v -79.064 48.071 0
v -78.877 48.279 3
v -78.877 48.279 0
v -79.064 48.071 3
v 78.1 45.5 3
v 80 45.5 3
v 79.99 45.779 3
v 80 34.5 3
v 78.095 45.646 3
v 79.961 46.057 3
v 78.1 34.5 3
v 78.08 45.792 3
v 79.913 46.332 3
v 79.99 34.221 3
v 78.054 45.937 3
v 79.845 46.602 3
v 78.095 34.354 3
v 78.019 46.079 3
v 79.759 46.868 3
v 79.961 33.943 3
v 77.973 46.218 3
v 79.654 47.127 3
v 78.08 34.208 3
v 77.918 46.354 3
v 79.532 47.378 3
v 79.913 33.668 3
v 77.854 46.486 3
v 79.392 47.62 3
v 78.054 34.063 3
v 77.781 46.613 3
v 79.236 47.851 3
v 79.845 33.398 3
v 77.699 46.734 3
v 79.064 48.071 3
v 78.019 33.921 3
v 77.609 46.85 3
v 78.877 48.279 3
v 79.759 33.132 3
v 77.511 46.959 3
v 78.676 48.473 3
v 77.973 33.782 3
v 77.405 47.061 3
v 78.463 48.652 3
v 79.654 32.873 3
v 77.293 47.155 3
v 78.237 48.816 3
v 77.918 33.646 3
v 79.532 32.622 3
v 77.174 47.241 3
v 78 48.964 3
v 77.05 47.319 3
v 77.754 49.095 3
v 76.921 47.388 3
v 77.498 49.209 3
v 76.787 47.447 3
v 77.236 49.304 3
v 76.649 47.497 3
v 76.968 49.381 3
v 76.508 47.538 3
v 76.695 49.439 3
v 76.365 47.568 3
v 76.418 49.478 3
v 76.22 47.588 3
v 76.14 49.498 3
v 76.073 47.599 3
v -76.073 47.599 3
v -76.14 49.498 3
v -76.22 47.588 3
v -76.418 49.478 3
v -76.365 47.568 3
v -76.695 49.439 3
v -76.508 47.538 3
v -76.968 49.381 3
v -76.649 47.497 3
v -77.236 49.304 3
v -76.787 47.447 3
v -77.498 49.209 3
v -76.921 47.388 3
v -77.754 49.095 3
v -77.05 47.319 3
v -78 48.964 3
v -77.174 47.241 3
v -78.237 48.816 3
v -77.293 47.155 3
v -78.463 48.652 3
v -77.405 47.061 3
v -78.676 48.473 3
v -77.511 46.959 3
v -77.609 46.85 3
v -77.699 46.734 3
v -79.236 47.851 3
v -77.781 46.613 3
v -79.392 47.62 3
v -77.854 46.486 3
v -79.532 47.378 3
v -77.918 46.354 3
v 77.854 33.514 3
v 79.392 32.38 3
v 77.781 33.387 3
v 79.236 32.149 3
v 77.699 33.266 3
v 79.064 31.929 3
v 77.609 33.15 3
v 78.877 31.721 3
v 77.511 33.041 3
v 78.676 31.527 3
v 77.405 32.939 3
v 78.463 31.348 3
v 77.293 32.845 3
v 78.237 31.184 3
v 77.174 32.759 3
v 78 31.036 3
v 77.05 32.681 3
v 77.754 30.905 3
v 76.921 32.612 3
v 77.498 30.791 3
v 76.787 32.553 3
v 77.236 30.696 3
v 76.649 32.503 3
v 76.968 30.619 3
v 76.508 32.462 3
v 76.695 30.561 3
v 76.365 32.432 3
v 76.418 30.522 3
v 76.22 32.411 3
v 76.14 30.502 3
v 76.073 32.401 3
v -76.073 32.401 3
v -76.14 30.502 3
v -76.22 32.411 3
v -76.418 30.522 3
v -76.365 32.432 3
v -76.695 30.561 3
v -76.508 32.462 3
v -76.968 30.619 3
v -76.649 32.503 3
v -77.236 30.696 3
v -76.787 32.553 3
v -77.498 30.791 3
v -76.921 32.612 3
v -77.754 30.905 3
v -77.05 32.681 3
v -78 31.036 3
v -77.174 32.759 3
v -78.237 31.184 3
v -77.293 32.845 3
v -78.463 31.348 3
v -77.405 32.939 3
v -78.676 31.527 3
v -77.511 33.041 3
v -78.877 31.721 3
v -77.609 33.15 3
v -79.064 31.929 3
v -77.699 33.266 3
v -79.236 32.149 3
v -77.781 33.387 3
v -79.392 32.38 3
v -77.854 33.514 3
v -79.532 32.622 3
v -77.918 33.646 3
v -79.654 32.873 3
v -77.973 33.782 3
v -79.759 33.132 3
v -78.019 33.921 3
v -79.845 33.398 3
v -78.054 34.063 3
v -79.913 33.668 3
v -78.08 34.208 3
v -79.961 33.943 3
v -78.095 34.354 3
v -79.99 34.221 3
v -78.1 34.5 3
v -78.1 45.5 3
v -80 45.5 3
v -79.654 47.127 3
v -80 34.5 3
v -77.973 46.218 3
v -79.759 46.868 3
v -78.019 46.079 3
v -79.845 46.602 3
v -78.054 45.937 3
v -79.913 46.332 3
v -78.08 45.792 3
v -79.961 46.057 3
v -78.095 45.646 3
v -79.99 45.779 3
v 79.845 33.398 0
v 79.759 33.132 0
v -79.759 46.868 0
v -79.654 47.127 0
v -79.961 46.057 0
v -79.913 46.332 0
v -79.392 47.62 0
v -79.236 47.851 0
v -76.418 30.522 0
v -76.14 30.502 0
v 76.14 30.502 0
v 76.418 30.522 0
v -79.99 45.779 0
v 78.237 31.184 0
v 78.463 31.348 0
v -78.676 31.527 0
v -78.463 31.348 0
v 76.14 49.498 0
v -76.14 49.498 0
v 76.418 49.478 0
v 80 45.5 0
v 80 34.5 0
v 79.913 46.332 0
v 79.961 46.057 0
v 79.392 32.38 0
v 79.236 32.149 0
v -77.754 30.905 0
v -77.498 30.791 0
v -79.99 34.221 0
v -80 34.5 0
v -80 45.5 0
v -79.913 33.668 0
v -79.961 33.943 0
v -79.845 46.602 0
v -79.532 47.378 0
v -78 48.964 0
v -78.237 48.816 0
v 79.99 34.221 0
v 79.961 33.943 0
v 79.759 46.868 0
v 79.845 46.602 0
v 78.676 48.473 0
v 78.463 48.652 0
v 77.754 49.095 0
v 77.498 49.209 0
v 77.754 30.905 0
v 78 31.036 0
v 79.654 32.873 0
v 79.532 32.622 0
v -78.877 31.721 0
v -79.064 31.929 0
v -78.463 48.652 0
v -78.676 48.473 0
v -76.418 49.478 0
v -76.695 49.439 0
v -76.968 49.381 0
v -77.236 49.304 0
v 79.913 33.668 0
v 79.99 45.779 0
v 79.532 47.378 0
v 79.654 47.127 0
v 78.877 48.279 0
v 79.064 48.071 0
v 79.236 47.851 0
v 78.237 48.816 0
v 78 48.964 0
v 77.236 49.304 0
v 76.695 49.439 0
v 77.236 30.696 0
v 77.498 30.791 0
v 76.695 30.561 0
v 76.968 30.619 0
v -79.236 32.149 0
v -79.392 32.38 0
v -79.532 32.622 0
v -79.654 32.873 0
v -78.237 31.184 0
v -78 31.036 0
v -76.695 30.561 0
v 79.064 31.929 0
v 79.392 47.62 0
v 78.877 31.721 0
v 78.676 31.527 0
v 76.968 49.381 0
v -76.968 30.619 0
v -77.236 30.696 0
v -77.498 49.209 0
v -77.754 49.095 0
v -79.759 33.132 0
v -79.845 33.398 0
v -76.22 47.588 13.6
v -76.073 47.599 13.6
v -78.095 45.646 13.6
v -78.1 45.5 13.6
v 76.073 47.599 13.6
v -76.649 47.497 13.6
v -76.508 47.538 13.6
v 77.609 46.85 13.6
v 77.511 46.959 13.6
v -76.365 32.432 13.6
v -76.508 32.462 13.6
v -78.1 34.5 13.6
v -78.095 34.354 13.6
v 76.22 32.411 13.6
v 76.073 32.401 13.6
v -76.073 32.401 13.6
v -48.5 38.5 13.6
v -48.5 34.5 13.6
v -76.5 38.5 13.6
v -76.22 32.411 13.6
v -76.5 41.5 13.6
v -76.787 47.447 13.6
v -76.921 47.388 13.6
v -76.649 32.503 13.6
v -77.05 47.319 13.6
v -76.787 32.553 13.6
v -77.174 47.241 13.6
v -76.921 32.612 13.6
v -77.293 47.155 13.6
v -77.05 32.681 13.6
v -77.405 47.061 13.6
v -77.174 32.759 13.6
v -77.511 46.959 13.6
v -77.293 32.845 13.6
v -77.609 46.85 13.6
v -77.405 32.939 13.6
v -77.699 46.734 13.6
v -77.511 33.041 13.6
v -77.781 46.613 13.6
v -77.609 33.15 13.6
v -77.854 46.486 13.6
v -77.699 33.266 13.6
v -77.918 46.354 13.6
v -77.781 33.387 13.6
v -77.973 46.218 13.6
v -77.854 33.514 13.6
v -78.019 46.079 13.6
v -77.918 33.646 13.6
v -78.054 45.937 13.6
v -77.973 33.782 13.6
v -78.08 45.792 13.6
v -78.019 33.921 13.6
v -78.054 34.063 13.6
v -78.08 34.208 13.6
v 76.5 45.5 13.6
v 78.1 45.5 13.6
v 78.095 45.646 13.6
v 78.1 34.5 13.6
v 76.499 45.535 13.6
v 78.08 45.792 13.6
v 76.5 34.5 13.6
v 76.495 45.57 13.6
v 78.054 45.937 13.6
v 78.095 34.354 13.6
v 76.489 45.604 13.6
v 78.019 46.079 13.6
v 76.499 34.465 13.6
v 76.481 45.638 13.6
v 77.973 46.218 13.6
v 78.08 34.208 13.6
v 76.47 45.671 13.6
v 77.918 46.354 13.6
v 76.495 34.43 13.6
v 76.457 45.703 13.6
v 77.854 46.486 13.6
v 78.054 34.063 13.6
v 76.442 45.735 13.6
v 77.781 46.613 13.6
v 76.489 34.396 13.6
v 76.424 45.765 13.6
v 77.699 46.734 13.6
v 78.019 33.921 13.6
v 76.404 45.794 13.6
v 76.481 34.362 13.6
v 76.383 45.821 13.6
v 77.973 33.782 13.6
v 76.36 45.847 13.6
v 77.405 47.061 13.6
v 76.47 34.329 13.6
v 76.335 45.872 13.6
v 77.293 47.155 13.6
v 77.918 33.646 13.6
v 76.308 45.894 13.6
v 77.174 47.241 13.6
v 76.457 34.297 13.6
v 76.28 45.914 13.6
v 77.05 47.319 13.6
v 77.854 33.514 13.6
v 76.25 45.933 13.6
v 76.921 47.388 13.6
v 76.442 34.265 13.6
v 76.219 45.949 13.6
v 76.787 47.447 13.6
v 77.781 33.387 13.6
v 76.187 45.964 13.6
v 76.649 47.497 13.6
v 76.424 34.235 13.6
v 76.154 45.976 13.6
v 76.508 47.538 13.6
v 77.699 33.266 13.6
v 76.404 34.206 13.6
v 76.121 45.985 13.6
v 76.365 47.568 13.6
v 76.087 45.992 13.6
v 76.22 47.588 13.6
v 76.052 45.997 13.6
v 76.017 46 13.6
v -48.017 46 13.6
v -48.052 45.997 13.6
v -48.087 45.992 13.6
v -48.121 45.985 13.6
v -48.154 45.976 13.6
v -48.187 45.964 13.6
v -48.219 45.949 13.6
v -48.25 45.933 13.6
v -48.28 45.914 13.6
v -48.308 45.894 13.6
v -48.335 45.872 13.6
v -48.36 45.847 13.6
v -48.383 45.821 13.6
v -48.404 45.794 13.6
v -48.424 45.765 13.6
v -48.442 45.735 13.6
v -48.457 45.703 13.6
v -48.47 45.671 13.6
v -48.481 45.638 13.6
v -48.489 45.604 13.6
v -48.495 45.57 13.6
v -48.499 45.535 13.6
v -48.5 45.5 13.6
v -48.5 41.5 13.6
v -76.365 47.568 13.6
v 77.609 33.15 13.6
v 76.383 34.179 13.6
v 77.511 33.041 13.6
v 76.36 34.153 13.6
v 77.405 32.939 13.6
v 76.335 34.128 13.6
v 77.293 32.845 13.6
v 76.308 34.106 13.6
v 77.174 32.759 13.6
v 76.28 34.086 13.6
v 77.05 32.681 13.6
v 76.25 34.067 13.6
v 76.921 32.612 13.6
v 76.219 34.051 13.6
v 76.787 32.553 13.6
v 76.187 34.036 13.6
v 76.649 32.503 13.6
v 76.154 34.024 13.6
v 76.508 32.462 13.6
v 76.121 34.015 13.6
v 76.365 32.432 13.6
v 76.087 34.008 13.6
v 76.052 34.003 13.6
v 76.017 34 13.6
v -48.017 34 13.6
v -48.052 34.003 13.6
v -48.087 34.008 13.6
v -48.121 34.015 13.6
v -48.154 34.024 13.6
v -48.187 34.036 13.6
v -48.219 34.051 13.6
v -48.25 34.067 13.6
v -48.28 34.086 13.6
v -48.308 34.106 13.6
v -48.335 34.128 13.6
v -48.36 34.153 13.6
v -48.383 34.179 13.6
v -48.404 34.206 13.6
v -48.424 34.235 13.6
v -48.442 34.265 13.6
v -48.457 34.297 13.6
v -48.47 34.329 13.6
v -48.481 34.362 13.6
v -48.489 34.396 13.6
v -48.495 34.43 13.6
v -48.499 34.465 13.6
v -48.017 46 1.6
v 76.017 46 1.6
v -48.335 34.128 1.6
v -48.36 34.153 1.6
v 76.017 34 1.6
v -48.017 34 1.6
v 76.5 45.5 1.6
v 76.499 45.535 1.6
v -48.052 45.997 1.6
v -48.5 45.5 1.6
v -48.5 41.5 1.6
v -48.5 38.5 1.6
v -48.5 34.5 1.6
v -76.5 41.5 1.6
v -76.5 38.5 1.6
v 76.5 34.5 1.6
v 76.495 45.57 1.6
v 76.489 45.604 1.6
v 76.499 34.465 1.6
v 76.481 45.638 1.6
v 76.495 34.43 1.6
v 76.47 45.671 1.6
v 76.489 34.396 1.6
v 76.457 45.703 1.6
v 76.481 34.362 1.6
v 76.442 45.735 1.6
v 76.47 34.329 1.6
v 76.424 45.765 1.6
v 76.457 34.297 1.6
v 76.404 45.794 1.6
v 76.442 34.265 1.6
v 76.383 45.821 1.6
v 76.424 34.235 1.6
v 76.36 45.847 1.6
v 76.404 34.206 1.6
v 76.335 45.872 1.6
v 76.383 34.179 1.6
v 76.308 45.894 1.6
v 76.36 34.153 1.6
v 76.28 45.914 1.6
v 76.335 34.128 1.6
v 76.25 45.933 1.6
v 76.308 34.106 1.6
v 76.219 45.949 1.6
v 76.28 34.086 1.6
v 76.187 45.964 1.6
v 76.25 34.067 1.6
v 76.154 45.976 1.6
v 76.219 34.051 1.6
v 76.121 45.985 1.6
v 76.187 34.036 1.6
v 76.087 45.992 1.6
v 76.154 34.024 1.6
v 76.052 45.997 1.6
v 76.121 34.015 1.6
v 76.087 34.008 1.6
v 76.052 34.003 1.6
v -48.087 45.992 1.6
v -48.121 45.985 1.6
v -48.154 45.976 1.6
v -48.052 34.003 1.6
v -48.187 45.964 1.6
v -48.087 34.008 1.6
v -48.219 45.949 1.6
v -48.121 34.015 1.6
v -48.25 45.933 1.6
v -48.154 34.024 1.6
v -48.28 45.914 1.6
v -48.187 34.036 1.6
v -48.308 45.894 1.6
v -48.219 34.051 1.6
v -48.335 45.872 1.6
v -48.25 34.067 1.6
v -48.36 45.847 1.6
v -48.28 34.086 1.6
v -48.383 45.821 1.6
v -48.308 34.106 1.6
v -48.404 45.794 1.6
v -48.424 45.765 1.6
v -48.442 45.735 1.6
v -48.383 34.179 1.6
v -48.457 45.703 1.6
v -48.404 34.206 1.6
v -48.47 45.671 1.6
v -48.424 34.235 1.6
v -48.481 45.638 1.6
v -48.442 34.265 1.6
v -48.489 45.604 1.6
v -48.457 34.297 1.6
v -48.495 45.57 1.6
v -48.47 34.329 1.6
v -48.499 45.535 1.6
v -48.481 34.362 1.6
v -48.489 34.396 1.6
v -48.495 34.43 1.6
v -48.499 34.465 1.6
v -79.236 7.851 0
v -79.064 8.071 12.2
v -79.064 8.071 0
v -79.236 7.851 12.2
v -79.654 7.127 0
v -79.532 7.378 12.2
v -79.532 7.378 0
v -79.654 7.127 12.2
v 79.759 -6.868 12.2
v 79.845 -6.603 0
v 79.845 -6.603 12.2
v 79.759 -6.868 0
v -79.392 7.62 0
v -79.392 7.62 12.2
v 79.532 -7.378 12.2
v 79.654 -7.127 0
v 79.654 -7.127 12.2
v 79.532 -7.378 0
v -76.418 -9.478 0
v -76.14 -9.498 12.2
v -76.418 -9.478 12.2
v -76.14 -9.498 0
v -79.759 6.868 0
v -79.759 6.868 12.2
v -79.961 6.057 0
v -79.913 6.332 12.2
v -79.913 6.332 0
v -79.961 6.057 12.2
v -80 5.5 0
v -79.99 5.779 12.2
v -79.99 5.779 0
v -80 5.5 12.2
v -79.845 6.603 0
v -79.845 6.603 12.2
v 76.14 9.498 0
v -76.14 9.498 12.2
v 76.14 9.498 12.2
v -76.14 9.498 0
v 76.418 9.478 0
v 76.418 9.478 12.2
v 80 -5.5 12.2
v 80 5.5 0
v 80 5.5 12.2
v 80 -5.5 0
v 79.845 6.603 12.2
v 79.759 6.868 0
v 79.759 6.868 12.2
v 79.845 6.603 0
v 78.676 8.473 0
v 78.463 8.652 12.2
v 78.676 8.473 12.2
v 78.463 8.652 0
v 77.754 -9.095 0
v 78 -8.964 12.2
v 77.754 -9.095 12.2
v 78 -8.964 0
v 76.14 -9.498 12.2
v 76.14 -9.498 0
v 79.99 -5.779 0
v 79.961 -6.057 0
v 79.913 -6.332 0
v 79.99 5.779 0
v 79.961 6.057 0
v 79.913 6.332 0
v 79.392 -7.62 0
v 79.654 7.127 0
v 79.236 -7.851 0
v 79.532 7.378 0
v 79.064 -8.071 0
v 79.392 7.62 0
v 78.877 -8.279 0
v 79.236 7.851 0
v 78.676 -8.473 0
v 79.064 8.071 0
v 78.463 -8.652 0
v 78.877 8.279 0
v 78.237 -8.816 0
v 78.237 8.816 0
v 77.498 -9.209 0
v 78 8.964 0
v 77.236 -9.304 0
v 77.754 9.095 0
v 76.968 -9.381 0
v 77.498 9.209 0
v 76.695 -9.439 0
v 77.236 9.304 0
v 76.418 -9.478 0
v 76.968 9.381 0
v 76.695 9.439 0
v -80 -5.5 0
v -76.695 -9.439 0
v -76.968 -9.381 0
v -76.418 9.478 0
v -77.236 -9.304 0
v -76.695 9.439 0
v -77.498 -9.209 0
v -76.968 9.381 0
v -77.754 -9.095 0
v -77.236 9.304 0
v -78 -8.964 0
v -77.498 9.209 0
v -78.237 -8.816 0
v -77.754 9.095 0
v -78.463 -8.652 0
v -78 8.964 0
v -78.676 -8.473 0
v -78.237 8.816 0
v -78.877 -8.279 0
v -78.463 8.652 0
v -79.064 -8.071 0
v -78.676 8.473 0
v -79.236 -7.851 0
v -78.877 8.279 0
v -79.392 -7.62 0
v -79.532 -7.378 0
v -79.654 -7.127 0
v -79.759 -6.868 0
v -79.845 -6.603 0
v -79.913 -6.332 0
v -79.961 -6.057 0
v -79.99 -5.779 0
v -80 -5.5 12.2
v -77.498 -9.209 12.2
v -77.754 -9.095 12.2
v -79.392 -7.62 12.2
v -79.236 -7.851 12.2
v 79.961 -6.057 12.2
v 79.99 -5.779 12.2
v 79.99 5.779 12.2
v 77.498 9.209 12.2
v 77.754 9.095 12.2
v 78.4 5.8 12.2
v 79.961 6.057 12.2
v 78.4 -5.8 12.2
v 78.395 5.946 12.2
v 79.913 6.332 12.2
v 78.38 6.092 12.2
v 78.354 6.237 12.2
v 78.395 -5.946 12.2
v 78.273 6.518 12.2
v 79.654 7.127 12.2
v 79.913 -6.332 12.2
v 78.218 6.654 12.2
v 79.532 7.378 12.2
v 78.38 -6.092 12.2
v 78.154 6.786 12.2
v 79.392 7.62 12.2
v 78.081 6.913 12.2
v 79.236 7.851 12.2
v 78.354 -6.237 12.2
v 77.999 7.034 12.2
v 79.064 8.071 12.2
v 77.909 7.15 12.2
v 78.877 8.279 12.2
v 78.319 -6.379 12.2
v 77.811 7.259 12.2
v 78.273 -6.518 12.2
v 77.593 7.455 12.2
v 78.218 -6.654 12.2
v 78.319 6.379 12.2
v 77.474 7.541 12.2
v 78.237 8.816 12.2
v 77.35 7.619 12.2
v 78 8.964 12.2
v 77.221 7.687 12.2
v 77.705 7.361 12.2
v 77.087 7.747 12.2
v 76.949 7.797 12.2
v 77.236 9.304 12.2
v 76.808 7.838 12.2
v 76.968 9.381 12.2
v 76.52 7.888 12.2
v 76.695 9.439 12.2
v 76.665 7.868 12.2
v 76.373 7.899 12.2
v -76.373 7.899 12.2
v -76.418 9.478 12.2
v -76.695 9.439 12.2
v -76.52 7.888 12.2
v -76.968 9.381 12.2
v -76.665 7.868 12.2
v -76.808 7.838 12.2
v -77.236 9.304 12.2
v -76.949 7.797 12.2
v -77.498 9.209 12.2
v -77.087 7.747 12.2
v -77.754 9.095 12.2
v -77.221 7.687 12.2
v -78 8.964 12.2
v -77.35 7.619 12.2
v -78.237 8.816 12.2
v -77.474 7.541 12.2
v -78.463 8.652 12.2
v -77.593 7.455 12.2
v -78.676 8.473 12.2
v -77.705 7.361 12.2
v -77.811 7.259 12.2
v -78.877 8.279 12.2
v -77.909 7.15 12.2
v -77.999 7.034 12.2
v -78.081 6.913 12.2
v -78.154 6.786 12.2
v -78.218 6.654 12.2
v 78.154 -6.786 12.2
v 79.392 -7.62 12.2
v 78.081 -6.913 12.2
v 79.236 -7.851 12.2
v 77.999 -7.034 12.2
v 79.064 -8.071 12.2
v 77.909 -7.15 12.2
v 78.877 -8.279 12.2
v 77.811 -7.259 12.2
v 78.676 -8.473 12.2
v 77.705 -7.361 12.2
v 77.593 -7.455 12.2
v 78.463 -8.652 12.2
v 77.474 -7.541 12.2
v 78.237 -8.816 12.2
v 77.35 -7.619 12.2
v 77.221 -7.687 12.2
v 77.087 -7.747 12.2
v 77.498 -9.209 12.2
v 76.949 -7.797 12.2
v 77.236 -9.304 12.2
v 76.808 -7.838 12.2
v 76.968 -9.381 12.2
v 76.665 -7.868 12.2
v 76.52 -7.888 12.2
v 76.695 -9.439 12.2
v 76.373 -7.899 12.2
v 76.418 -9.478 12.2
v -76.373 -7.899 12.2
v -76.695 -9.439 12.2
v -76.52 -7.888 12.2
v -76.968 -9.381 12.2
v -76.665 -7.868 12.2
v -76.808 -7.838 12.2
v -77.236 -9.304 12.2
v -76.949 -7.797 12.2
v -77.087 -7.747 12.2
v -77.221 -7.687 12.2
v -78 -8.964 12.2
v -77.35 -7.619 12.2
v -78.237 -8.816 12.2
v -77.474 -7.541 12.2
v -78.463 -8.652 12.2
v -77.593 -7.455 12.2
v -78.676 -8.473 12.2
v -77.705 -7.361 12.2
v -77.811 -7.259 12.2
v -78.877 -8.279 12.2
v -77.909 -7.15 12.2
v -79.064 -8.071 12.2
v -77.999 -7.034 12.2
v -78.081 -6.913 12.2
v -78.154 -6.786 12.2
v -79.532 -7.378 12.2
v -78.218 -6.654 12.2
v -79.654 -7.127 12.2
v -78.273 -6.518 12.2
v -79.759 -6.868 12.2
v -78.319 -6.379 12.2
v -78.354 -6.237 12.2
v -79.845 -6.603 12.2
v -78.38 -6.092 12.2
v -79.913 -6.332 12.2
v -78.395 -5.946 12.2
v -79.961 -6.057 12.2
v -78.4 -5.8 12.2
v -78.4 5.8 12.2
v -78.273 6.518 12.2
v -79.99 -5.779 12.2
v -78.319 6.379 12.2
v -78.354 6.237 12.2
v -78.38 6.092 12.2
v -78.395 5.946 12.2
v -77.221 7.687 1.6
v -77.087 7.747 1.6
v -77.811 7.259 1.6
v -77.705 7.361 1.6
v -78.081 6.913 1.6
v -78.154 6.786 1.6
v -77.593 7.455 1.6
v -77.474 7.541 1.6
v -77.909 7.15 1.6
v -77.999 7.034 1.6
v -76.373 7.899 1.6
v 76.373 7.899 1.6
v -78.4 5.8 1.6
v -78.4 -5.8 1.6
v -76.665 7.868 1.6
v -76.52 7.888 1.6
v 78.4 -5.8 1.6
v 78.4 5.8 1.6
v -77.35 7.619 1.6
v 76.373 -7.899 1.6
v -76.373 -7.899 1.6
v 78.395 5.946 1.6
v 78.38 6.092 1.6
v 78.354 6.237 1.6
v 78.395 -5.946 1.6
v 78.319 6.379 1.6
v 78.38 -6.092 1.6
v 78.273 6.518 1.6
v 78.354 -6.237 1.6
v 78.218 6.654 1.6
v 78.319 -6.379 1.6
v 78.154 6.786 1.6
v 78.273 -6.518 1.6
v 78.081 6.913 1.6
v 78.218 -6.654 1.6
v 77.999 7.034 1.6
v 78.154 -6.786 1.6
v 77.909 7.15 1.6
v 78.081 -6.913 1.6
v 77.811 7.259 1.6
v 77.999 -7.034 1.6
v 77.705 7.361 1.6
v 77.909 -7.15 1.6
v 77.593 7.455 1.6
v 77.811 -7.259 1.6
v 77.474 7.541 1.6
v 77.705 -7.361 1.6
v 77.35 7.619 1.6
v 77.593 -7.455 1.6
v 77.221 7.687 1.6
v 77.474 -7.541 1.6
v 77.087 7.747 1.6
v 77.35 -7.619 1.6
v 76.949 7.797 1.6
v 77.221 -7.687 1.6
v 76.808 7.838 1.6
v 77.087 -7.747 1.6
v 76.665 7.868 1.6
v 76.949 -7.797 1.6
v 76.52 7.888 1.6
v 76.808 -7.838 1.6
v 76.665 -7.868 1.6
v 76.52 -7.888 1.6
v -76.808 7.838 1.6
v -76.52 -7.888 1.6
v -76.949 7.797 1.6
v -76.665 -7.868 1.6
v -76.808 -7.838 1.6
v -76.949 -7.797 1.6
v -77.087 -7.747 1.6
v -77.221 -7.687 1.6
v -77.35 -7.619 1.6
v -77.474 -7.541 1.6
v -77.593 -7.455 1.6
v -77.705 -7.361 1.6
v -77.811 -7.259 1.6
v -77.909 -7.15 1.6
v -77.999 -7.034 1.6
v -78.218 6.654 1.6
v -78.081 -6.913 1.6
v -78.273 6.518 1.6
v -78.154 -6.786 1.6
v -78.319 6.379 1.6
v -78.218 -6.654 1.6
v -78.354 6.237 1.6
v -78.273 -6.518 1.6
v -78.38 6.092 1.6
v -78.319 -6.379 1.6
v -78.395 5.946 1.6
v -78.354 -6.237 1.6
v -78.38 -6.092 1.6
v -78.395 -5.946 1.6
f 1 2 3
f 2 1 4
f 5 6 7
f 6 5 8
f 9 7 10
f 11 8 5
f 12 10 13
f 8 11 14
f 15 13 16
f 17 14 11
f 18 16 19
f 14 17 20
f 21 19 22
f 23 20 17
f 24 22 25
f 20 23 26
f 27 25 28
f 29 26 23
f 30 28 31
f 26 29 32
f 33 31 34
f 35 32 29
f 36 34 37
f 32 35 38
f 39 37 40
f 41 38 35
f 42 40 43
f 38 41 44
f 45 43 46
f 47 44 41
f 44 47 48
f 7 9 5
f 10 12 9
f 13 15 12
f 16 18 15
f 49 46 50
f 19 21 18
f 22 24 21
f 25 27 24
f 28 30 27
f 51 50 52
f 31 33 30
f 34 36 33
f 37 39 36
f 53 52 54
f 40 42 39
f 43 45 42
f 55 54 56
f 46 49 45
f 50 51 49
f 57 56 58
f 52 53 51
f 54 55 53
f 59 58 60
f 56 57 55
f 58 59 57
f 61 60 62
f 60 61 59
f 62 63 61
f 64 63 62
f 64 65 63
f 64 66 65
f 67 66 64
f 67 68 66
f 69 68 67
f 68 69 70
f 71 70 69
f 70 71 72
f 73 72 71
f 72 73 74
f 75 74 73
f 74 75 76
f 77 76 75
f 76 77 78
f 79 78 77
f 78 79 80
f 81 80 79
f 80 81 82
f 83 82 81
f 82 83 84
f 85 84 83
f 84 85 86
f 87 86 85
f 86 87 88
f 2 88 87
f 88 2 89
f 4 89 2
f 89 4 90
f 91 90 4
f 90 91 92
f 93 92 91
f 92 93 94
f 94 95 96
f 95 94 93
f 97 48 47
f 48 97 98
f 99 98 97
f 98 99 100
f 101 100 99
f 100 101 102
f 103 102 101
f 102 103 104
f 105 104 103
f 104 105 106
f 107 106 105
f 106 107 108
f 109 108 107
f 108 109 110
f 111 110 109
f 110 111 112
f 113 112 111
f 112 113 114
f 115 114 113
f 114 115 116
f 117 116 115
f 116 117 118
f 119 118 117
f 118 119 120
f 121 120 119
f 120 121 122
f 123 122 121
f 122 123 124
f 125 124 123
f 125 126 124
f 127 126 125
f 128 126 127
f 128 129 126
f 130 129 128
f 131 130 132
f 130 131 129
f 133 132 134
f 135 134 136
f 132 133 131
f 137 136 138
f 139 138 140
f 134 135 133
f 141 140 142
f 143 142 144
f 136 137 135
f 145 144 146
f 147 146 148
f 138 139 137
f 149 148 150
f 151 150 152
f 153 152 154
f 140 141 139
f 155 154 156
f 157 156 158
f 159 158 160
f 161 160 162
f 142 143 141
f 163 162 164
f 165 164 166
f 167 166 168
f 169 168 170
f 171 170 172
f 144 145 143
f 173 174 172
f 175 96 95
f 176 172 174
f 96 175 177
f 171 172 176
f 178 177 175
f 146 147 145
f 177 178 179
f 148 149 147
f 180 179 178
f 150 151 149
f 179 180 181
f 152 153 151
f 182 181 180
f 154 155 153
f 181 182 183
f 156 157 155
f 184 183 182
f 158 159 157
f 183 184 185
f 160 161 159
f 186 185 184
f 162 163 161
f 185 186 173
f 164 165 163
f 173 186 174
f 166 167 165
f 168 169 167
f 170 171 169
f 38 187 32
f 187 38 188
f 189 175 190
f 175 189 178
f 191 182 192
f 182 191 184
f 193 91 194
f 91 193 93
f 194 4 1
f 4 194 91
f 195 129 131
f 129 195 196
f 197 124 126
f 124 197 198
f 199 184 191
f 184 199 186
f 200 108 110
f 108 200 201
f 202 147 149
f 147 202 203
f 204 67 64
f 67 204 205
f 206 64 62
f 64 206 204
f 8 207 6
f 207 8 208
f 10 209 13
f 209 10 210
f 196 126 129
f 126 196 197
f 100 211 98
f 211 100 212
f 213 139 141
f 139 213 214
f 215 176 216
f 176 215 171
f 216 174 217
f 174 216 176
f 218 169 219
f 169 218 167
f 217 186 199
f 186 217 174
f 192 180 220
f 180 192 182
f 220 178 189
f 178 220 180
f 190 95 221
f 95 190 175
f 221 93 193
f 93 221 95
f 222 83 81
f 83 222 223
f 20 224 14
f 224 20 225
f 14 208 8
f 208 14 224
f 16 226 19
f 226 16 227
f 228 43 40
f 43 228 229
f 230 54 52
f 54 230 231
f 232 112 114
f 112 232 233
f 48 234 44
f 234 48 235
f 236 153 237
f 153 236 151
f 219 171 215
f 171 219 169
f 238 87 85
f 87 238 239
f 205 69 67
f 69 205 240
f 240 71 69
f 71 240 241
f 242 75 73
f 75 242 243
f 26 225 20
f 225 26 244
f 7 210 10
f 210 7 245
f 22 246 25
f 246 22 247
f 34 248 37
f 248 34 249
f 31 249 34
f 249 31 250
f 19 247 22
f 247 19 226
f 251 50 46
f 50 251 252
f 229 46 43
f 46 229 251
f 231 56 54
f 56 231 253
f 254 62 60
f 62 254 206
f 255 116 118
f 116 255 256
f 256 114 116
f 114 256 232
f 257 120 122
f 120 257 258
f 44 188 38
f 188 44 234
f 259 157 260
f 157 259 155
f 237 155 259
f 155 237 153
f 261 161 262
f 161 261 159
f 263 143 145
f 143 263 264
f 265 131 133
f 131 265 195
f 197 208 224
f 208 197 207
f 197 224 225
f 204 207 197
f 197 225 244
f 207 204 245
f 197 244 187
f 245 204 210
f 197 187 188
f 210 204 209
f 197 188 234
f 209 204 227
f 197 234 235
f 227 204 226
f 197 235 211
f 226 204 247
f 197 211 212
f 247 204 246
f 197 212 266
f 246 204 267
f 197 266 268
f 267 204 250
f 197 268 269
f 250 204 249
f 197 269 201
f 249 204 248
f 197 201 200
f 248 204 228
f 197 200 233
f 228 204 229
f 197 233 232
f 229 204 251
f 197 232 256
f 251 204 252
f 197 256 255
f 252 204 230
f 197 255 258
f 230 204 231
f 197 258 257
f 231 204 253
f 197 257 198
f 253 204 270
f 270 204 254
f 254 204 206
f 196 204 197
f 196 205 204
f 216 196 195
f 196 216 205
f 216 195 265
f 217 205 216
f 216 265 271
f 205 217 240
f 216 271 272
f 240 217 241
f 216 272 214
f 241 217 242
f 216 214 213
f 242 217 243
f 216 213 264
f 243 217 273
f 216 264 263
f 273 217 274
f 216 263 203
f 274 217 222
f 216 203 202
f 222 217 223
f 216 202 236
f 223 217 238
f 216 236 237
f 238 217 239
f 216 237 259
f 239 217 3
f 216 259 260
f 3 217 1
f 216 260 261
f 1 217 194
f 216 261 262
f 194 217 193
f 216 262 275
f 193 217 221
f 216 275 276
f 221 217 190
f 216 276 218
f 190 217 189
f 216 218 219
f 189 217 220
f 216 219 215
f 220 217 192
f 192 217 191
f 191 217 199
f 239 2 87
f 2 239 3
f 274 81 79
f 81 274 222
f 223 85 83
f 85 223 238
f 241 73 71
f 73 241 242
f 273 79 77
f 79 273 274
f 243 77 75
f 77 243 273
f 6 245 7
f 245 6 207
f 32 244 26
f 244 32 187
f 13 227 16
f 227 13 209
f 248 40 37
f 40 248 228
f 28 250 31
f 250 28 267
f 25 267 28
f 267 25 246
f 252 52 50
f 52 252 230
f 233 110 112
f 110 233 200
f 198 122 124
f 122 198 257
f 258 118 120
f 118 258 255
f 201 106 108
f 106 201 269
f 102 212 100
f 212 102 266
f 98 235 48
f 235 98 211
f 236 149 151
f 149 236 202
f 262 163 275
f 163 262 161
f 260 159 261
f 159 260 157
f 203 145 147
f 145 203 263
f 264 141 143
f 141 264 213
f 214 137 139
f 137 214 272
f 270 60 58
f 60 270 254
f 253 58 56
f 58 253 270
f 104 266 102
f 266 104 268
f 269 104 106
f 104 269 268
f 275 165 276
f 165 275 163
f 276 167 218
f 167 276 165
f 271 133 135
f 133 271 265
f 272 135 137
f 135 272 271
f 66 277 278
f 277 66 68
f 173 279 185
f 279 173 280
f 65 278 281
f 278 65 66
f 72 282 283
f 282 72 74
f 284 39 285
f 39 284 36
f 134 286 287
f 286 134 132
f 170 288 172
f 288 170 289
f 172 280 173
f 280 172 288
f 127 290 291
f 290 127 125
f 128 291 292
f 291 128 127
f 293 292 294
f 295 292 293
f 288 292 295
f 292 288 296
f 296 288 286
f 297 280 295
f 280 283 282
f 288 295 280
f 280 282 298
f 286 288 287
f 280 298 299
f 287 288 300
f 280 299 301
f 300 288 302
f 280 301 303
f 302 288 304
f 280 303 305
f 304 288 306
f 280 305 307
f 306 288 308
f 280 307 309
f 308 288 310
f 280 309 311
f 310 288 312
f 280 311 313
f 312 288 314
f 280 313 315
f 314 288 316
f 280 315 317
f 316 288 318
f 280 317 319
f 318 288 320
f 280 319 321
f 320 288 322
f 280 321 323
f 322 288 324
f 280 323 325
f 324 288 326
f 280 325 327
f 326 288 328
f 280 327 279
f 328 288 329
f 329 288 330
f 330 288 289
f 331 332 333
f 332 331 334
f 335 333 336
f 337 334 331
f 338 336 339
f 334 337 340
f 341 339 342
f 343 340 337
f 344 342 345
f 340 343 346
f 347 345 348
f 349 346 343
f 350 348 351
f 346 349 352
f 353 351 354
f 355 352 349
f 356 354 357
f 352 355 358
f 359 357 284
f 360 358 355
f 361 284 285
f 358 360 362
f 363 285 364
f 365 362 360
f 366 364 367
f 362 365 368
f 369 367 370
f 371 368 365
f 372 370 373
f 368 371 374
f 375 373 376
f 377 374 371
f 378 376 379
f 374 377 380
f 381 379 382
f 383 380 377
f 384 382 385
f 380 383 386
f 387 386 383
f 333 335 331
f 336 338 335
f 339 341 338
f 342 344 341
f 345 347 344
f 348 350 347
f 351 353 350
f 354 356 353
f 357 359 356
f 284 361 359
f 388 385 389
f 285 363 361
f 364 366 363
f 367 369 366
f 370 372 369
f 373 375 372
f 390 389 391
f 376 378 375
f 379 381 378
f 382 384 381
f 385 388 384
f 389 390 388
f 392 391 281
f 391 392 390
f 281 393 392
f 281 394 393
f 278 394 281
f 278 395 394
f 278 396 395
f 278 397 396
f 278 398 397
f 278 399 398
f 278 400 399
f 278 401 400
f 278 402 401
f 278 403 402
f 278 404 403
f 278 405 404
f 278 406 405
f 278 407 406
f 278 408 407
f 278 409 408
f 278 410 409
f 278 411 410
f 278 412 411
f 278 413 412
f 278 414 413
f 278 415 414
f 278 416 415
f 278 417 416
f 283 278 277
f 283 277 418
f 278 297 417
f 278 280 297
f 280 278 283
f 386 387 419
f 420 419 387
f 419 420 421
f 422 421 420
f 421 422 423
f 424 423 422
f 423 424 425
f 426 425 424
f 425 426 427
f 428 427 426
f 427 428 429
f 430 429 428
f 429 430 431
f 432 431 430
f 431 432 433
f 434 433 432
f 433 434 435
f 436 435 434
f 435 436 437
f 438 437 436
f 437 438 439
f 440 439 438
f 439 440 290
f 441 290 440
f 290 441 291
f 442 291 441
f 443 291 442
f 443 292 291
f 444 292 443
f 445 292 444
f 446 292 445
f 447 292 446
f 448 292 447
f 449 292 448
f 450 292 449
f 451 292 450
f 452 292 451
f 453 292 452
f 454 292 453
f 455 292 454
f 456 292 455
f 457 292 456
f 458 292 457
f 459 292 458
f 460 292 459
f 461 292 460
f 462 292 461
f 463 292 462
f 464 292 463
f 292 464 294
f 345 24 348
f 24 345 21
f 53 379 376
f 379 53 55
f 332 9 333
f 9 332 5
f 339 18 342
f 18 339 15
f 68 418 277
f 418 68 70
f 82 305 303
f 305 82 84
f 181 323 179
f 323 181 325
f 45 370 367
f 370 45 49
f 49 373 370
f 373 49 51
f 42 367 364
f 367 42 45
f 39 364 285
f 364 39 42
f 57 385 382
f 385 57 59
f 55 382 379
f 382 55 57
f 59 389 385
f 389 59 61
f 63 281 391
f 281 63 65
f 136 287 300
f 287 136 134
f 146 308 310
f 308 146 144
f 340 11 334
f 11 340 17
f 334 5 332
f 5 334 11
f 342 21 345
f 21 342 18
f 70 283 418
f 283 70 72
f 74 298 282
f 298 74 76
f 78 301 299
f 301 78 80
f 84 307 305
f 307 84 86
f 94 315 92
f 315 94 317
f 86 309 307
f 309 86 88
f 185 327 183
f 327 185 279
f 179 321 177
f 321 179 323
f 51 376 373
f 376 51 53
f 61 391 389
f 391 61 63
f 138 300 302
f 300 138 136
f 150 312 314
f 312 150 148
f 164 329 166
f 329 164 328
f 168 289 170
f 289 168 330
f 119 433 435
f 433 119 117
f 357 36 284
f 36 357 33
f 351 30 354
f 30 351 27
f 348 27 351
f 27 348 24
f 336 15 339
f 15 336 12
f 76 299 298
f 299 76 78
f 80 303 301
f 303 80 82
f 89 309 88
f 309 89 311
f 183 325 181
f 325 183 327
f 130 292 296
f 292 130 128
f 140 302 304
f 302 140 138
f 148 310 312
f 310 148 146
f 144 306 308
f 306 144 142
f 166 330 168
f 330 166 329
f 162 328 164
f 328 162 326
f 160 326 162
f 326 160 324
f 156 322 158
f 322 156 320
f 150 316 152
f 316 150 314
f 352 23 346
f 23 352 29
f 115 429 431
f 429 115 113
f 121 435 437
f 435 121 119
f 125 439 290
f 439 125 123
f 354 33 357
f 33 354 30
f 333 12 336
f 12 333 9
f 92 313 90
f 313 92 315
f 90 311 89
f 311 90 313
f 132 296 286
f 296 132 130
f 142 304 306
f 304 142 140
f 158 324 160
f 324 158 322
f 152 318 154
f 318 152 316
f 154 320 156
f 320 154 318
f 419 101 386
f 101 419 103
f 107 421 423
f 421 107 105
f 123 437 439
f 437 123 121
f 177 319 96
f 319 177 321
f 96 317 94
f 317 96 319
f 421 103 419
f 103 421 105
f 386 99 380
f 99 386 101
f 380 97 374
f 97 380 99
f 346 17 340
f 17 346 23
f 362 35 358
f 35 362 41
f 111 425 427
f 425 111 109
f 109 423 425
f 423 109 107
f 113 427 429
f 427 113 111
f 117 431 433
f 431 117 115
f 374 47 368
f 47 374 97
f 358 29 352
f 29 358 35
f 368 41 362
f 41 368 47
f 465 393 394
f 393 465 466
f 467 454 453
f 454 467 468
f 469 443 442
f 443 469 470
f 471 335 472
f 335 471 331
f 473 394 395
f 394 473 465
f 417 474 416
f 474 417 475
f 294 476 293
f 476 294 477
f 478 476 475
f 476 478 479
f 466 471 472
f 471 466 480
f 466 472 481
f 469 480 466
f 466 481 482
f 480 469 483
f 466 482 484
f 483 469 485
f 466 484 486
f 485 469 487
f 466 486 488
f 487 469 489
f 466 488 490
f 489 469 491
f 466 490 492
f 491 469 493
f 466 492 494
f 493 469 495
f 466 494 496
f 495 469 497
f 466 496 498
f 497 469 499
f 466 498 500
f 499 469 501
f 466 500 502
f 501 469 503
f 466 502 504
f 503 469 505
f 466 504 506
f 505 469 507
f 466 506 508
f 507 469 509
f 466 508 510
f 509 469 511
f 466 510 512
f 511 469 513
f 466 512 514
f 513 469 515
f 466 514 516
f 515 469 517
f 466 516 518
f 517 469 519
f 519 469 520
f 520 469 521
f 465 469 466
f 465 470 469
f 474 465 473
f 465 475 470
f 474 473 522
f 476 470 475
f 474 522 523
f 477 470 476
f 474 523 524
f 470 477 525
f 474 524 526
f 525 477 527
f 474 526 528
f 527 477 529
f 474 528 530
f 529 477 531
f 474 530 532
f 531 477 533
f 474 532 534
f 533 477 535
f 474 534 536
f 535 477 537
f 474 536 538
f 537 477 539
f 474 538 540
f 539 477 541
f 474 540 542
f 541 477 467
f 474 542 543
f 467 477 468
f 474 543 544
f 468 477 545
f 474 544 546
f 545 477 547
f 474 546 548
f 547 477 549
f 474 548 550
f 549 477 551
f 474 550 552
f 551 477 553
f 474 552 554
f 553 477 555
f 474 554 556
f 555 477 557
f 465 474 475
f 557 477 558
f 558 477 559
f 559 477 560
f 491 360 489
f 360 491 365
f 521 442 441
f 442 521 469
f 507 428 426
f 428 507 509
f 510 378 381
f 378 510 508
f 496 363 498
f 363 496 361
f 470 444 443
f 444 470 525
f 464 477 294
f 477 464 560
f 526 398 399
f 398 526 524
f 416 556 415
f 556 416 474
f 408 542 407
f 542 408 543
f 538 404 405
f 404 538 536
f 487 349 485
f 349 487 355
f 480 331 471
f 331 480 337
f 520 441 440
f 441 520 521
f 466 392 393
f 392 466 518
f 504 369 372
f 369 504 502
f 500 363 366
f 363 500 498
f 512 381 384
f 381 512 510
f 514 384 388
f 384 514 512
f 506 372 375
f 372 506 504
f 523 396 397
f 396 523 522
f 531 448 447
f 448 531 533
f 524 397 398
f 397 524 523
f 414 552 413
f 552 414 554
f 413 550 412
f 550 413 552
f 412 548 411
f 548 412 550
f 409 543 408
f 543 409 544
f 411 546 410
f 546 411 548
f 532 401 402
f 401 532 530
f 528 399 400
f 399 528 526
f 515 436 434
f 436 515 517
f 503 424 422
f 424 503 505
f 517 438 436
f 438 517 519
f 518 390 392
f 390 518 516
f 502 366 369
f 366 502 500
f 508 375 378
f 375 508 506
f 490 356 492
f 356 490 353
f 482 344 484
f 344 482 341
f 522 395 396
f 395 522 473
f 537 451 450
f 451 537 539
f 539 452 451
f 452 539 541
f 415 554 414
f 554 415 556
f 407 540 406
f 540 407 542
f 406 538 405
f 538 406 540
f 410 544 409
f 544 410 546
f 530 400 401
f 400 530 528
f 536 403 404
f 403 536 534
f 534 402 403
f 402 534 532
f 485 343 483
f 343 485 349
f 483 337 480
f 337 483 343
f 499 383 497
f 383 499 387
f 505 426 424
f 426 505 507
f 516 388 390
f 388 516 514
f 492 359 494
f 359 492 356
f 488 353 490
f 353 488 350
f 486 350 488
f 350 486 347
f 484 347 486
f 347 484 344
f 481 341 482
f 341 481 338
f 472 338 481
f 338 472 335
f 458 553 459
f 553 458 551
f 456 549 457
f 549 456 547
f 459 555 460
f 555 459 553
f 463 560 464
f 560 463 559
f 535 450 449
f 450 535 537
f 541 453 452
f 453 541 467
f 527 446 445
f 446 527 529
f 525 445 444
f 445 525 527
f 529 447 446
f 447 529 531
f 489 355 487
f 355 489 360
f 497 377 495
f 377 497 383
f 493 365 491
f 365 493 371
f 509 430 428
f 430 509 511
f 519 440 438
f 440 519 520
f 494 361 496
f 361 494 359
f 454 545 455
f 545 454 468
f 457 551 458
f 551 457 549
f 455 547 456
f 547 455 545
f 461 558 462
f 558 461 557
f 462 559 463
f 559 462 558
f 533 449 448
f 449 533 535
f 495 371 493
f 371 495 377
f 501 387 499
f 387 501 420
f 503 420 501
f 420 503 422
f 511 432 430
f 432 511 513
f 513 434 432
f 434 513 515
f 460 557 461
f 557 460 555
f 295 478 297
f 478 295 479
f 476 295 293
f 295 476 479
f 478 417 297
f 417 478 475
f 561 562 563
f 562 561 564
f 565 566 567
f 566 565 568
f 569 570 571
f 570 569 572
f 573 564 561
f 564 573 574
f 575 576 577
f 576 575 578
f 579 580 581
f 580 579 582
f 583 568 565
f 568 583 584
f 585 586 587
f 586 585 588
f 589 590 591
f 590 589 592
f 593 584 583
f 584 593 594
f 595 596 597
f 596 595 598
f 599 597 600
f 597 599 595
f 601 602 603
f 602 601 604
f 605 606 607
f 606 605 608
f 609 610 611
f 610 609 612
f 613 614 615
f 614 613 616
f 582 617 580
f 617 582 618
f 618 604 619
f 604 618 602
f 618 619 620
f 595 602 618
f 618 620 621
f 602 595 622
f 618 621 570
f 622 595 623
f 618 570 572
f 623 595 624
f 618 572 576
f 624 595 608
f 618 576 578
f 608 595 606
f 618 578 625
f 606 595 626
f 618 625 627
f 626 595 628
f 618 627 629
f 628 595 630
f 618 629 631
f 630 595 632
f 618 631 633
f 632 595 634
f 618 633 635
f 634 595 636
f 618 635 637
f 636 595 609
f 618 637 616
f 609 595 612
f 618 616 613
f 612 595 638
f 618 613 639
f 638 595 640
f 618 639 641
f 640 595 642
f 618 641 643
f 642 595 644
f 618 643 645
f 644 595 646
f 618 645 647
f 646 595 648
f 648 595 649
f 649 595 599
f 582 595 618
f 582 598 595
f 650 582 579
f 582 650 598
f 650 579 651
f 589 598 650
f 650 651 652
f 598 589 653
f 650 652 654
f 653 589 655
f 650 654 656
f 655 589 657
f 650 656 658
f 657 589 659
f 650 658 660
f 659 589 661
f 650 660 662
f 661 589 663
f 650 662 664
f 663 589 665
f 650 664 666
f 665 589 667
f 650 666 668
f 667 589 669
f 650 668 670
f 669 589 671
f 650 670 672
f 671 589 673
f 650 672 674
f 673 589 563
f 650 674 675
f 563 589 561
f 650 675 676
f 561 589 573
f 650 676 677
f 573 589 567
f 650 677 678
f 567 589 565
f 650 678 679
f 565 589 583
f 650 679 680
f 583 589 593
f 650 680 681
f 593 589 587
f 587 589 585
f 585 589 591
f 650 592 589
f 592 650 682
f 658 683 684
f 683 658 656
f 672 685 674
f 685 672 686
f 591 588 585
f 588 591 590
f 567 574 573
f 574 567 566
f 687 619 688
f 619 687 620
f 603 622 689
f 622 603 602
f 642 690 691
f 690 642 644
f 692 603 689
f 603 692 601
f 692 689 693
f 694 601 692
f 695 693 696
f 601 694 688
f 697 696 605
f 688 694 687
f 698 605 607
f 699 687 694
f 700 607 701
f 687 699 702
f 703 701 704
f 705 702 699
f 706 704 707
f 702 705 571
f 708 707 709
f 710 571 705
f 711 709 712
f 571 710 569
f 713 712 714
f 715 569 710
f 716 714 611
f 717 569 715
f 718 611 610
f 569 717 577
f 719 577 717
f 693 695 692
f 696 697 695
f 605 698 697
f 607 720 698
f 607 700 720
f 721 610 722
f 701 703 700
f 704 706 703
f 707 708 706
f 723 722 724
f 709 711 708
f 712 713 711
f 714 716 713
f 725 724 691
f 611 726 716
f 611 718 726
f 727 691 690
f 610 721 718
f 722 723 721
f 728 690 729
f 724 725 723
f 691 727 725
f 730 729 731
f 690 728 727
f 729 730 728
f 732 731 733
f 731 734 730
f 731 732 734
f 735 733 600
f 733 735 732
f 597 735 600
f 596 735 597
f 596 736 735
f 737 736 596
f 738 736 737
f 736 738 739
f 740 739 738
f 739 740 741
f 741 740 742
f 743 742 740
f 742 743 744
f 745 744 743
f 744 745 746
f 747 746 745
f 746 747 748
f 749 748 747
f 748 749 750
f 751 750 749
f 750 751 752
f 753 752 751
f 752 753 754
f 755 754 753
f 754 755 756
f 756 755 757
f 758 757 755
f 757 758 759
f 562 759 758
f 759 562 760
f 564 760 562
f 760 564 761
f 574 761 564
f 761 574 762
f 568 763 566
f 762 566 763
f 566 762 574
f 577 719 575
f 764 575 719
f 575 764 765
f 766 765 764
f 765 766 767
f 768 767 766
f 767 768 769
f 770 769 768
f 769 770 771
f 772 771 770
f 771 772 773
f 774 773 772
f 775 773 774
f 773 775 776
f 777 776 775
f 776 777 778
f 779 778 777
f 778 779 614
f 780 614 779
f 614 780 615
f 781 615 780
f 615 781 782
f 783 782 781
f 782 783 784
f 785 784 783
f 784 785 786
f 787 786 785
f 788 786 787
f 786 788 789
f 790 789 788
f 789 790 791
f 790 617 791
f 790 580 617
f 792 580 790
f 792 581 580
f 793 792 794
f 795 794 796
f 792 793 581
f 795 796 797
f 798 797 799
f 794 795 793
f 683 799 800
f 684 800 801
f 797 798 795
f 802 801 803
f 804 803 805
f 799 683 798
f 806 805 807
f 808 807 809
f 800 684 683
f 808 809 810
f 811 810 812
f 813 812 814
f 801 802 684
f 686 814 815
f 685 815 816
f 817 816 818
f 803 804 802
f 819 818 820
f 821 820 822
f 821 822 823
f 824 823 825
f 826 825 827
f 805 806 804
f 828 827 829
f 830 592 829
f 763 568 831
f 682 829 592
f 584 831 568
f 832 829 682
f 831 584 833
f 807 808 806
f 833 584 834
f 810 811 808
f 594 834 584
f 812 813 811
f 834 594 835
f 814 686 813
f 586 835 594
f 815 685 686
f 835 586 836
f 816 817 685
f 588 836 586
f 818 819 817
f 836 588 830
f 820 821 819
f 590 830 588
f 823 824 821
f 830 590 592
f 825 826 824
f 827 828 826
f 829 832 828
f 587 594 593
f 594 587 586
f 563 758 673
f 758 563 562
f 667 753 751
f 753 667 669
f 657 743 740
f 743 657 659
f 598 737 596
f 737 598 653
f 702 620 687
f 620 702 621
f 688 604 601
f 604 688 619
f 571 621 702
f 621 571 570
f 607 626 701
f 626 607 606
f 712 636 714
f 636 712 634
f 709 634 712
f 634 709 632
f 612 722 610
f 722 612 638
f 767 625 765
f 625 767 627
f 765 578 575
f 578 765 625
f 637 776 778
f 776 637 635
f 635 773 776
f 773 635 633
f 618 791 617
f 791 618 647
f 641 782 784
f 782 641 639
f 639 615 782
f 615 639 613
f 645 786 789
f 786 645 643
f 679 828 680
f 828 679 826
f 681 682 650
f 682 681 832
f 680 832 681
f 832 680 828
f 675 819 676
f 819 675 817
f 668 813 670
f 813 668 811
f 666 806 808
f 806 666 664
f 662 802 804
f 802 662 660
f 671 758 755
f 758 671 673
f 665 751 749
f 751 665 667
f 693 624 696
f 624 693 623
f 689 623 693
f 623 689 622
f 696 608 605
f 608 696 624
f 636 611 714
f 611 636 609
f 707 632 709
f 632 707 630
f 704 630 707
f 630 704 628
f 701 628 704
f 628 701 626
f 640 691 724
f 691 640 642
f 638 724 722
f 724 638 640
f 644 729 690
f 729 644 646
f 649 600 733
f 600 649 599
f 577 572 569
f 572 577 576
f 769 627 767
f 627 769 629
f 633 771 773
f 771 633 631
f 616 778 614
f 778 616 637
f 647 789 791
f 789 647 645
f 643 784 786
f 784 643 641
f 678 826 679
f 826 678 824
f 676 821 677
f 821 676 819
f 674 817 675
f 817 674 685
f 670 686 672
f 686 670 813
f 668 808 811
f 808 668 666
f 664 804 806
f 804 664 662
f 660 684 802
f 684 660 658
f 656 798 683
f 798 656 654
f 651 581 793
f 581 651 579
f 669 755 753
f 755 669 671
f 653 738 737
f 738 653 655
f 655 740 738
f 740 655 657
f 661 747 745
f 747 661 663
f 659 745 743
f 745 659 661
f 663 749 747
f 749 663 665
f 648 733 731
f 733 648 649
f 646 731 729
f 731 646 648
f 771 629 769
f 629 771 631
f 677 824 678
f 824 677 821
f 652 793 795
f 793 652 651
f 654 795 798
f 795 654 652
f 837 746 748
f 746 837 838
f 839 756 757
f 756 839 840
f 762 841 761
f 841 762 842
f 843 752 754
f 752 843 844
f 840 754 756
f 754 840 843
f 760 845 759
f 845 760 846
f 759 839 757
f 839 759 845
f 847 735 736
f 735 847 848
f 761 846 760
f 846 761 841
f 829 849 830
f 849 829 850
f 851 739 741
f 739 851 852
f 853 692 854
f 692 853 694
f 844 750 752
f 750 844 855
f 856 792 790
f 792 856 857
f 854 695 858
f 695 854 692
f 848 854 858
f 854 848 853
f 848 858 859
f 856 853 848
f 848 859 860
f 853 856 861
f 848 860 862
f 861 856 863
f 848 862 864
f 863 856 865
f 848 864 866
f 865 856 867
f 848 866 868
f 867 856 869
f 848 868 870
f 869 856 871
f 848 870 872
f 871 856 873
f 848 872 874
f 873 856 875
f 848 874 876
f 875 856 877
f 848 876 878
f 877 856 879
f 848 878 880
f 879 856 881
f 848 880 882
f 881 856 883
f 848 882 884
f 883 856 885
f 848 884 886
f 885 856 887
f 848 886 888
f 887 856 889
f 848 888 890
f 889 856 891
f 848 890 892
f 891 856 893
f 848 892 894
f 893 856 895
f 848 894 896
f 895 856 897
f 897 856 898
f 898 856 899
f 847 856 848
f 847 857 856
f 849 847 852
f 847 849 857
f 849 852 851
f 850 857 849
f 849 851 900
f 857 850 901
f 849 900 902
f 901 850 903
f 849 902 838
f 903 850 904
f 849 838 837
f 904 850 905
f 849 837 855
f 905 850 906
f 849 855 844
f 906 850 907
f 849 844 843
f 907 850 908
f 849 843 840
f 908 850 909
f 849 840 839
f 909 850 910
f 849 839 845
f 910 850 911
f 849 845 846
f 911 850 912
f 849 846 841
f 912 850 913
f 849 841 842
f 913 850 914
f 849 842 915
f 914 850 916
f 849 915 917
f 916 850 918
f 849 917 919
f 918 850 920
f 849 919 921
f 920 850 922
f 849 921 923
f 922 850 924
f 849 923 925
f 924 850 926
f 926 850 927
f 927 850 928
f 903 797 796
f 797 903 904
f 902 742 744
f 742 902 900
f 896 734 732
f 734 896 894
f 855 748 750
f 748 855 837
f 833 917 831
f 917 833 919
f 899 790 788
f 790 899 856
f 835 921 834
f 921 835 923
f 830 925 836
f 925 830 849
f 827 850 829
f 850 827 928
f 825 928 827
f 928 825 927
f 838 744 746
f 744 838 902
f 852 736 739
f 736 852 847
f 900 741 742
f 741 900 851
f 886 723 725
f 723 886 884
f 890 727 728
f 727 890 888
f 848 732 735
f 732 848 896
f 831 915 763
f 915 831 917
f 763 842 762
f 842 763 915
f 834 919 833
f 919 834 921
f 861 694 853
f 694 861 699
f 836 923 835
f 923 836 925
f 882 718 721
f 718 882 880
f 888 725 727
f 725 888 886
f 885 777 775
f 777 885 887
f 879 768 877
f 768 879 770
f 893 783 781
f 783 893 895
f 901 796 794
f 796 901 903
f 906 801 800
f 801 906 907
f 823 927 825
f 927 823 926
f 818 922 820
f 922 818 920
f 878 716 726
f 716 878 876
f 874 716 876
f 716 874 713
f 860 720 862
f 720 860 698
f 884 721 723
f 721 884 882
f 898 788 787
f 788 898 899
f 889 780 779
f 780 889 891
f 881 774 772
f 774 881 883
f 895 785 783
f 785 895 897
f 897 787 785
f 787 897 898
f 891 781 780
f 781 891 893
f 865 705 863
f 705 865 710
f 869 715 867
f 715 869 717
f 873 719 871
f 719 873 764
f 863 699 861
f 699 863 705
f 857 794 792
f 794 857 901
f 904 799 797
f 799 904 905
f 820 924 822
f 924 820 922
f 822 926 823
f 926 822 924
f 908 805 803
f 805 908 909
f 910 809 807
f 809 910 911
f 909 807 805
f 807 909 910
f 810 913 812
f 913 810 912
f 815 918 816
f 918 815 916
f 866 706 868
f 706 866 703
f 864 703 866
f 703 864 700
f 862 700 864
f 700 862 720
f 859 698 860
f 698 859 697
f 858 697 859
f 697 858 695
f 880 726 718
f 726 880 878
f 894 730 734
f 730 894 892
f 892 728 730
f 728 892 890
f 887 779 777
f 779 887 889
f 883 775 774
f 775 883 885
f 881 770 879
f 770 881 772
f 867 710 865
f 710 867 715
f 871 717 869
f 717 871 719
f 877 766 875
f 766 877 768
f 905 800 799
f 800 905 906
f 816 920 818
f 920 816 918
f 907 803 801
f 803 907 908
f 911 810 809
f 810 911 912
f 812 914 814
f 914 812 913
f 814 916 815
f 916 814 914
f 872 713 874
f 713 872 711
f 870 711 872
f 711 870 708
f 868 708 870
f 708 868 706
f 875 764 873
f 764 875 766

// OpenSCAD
// X-Acto knife case.

// Roundness resolution.
$fn = 90;

eps1 = 0 + 00.01;
eps2 = 2*eps1;

// Base inner length, including the blade slot.
inner_length = 153;

// Base inner width
inner_width = 12;

// Base inner height
inner_height = 12;

// Wall thickness
wall = 1.6;

// Space betwene parts to compensate for printer tolernace.
clearance = 0.3;

// The height of the bottom step outside the base.
step_height = 3; 

// External corner radius.
corner = 4;  

// Blade slot length, should be longer than the visible length fo the blade.
slot_length = 28;

// Width of blade slot.
slot_width = 3;

// Centered at x=0, y=0. On z=0 plane.
module rounded_cube(xlen, ylen, zlen, r) {
  translate([r-xlen/2, r-ylen/2, 0]) minkowski() {
    cube([xlen-2*r, ylen-2*r, zlen/2]);
    cylinder(r=r, h=zlen/2);
 }
}

module base() {
  difference() {
    // Add solid body
    union() {
      rounded_cube(
         inner_length + 4*wall + 2*clearance,
         inner_width + 4*wall + 2*clearance,
         step_height,
         corner);
      
       rounded_cube(
          inner_length + 2*wall,
          inner_width + 2*wall,
          inner_height + wall,
          max(eps1, corner - wall - clearance));
    }
    
    // Remove cavity
    translate([slot_length/2, 0, wall]) 
    rounded_cube(
        inner_length - slot_length,
        inner_width,
        inner_height + eps1,
        max(eps1, corner - wall - clearance - wall));
    
    // Remove blade slot
    translate([-inner_length/2, -slot_width/2, wall])
        cube([slot_length+eps1, slot_width, inner_height+eps1]);
  }      
}

module cover() {
  difference() {
    rounded_cube(
       inner_length + 4*wall + 2*clearance,
       inner_width + 4*wall + 2*clearance,
       inner_height + 2*wall - step_height,
       corner);  

    translate([0, 0, wall])
    rounded_cube(
       inner_length + 2*wall + 2*clearance,
       inner_width + 2*wall + 2*clearance,
       inner_height + eps1,
       max(eps1, corner - wall - clearance));     
  }
}

module main() {
  translate([0, 40, 0]) base();
  cover();
}

main();
